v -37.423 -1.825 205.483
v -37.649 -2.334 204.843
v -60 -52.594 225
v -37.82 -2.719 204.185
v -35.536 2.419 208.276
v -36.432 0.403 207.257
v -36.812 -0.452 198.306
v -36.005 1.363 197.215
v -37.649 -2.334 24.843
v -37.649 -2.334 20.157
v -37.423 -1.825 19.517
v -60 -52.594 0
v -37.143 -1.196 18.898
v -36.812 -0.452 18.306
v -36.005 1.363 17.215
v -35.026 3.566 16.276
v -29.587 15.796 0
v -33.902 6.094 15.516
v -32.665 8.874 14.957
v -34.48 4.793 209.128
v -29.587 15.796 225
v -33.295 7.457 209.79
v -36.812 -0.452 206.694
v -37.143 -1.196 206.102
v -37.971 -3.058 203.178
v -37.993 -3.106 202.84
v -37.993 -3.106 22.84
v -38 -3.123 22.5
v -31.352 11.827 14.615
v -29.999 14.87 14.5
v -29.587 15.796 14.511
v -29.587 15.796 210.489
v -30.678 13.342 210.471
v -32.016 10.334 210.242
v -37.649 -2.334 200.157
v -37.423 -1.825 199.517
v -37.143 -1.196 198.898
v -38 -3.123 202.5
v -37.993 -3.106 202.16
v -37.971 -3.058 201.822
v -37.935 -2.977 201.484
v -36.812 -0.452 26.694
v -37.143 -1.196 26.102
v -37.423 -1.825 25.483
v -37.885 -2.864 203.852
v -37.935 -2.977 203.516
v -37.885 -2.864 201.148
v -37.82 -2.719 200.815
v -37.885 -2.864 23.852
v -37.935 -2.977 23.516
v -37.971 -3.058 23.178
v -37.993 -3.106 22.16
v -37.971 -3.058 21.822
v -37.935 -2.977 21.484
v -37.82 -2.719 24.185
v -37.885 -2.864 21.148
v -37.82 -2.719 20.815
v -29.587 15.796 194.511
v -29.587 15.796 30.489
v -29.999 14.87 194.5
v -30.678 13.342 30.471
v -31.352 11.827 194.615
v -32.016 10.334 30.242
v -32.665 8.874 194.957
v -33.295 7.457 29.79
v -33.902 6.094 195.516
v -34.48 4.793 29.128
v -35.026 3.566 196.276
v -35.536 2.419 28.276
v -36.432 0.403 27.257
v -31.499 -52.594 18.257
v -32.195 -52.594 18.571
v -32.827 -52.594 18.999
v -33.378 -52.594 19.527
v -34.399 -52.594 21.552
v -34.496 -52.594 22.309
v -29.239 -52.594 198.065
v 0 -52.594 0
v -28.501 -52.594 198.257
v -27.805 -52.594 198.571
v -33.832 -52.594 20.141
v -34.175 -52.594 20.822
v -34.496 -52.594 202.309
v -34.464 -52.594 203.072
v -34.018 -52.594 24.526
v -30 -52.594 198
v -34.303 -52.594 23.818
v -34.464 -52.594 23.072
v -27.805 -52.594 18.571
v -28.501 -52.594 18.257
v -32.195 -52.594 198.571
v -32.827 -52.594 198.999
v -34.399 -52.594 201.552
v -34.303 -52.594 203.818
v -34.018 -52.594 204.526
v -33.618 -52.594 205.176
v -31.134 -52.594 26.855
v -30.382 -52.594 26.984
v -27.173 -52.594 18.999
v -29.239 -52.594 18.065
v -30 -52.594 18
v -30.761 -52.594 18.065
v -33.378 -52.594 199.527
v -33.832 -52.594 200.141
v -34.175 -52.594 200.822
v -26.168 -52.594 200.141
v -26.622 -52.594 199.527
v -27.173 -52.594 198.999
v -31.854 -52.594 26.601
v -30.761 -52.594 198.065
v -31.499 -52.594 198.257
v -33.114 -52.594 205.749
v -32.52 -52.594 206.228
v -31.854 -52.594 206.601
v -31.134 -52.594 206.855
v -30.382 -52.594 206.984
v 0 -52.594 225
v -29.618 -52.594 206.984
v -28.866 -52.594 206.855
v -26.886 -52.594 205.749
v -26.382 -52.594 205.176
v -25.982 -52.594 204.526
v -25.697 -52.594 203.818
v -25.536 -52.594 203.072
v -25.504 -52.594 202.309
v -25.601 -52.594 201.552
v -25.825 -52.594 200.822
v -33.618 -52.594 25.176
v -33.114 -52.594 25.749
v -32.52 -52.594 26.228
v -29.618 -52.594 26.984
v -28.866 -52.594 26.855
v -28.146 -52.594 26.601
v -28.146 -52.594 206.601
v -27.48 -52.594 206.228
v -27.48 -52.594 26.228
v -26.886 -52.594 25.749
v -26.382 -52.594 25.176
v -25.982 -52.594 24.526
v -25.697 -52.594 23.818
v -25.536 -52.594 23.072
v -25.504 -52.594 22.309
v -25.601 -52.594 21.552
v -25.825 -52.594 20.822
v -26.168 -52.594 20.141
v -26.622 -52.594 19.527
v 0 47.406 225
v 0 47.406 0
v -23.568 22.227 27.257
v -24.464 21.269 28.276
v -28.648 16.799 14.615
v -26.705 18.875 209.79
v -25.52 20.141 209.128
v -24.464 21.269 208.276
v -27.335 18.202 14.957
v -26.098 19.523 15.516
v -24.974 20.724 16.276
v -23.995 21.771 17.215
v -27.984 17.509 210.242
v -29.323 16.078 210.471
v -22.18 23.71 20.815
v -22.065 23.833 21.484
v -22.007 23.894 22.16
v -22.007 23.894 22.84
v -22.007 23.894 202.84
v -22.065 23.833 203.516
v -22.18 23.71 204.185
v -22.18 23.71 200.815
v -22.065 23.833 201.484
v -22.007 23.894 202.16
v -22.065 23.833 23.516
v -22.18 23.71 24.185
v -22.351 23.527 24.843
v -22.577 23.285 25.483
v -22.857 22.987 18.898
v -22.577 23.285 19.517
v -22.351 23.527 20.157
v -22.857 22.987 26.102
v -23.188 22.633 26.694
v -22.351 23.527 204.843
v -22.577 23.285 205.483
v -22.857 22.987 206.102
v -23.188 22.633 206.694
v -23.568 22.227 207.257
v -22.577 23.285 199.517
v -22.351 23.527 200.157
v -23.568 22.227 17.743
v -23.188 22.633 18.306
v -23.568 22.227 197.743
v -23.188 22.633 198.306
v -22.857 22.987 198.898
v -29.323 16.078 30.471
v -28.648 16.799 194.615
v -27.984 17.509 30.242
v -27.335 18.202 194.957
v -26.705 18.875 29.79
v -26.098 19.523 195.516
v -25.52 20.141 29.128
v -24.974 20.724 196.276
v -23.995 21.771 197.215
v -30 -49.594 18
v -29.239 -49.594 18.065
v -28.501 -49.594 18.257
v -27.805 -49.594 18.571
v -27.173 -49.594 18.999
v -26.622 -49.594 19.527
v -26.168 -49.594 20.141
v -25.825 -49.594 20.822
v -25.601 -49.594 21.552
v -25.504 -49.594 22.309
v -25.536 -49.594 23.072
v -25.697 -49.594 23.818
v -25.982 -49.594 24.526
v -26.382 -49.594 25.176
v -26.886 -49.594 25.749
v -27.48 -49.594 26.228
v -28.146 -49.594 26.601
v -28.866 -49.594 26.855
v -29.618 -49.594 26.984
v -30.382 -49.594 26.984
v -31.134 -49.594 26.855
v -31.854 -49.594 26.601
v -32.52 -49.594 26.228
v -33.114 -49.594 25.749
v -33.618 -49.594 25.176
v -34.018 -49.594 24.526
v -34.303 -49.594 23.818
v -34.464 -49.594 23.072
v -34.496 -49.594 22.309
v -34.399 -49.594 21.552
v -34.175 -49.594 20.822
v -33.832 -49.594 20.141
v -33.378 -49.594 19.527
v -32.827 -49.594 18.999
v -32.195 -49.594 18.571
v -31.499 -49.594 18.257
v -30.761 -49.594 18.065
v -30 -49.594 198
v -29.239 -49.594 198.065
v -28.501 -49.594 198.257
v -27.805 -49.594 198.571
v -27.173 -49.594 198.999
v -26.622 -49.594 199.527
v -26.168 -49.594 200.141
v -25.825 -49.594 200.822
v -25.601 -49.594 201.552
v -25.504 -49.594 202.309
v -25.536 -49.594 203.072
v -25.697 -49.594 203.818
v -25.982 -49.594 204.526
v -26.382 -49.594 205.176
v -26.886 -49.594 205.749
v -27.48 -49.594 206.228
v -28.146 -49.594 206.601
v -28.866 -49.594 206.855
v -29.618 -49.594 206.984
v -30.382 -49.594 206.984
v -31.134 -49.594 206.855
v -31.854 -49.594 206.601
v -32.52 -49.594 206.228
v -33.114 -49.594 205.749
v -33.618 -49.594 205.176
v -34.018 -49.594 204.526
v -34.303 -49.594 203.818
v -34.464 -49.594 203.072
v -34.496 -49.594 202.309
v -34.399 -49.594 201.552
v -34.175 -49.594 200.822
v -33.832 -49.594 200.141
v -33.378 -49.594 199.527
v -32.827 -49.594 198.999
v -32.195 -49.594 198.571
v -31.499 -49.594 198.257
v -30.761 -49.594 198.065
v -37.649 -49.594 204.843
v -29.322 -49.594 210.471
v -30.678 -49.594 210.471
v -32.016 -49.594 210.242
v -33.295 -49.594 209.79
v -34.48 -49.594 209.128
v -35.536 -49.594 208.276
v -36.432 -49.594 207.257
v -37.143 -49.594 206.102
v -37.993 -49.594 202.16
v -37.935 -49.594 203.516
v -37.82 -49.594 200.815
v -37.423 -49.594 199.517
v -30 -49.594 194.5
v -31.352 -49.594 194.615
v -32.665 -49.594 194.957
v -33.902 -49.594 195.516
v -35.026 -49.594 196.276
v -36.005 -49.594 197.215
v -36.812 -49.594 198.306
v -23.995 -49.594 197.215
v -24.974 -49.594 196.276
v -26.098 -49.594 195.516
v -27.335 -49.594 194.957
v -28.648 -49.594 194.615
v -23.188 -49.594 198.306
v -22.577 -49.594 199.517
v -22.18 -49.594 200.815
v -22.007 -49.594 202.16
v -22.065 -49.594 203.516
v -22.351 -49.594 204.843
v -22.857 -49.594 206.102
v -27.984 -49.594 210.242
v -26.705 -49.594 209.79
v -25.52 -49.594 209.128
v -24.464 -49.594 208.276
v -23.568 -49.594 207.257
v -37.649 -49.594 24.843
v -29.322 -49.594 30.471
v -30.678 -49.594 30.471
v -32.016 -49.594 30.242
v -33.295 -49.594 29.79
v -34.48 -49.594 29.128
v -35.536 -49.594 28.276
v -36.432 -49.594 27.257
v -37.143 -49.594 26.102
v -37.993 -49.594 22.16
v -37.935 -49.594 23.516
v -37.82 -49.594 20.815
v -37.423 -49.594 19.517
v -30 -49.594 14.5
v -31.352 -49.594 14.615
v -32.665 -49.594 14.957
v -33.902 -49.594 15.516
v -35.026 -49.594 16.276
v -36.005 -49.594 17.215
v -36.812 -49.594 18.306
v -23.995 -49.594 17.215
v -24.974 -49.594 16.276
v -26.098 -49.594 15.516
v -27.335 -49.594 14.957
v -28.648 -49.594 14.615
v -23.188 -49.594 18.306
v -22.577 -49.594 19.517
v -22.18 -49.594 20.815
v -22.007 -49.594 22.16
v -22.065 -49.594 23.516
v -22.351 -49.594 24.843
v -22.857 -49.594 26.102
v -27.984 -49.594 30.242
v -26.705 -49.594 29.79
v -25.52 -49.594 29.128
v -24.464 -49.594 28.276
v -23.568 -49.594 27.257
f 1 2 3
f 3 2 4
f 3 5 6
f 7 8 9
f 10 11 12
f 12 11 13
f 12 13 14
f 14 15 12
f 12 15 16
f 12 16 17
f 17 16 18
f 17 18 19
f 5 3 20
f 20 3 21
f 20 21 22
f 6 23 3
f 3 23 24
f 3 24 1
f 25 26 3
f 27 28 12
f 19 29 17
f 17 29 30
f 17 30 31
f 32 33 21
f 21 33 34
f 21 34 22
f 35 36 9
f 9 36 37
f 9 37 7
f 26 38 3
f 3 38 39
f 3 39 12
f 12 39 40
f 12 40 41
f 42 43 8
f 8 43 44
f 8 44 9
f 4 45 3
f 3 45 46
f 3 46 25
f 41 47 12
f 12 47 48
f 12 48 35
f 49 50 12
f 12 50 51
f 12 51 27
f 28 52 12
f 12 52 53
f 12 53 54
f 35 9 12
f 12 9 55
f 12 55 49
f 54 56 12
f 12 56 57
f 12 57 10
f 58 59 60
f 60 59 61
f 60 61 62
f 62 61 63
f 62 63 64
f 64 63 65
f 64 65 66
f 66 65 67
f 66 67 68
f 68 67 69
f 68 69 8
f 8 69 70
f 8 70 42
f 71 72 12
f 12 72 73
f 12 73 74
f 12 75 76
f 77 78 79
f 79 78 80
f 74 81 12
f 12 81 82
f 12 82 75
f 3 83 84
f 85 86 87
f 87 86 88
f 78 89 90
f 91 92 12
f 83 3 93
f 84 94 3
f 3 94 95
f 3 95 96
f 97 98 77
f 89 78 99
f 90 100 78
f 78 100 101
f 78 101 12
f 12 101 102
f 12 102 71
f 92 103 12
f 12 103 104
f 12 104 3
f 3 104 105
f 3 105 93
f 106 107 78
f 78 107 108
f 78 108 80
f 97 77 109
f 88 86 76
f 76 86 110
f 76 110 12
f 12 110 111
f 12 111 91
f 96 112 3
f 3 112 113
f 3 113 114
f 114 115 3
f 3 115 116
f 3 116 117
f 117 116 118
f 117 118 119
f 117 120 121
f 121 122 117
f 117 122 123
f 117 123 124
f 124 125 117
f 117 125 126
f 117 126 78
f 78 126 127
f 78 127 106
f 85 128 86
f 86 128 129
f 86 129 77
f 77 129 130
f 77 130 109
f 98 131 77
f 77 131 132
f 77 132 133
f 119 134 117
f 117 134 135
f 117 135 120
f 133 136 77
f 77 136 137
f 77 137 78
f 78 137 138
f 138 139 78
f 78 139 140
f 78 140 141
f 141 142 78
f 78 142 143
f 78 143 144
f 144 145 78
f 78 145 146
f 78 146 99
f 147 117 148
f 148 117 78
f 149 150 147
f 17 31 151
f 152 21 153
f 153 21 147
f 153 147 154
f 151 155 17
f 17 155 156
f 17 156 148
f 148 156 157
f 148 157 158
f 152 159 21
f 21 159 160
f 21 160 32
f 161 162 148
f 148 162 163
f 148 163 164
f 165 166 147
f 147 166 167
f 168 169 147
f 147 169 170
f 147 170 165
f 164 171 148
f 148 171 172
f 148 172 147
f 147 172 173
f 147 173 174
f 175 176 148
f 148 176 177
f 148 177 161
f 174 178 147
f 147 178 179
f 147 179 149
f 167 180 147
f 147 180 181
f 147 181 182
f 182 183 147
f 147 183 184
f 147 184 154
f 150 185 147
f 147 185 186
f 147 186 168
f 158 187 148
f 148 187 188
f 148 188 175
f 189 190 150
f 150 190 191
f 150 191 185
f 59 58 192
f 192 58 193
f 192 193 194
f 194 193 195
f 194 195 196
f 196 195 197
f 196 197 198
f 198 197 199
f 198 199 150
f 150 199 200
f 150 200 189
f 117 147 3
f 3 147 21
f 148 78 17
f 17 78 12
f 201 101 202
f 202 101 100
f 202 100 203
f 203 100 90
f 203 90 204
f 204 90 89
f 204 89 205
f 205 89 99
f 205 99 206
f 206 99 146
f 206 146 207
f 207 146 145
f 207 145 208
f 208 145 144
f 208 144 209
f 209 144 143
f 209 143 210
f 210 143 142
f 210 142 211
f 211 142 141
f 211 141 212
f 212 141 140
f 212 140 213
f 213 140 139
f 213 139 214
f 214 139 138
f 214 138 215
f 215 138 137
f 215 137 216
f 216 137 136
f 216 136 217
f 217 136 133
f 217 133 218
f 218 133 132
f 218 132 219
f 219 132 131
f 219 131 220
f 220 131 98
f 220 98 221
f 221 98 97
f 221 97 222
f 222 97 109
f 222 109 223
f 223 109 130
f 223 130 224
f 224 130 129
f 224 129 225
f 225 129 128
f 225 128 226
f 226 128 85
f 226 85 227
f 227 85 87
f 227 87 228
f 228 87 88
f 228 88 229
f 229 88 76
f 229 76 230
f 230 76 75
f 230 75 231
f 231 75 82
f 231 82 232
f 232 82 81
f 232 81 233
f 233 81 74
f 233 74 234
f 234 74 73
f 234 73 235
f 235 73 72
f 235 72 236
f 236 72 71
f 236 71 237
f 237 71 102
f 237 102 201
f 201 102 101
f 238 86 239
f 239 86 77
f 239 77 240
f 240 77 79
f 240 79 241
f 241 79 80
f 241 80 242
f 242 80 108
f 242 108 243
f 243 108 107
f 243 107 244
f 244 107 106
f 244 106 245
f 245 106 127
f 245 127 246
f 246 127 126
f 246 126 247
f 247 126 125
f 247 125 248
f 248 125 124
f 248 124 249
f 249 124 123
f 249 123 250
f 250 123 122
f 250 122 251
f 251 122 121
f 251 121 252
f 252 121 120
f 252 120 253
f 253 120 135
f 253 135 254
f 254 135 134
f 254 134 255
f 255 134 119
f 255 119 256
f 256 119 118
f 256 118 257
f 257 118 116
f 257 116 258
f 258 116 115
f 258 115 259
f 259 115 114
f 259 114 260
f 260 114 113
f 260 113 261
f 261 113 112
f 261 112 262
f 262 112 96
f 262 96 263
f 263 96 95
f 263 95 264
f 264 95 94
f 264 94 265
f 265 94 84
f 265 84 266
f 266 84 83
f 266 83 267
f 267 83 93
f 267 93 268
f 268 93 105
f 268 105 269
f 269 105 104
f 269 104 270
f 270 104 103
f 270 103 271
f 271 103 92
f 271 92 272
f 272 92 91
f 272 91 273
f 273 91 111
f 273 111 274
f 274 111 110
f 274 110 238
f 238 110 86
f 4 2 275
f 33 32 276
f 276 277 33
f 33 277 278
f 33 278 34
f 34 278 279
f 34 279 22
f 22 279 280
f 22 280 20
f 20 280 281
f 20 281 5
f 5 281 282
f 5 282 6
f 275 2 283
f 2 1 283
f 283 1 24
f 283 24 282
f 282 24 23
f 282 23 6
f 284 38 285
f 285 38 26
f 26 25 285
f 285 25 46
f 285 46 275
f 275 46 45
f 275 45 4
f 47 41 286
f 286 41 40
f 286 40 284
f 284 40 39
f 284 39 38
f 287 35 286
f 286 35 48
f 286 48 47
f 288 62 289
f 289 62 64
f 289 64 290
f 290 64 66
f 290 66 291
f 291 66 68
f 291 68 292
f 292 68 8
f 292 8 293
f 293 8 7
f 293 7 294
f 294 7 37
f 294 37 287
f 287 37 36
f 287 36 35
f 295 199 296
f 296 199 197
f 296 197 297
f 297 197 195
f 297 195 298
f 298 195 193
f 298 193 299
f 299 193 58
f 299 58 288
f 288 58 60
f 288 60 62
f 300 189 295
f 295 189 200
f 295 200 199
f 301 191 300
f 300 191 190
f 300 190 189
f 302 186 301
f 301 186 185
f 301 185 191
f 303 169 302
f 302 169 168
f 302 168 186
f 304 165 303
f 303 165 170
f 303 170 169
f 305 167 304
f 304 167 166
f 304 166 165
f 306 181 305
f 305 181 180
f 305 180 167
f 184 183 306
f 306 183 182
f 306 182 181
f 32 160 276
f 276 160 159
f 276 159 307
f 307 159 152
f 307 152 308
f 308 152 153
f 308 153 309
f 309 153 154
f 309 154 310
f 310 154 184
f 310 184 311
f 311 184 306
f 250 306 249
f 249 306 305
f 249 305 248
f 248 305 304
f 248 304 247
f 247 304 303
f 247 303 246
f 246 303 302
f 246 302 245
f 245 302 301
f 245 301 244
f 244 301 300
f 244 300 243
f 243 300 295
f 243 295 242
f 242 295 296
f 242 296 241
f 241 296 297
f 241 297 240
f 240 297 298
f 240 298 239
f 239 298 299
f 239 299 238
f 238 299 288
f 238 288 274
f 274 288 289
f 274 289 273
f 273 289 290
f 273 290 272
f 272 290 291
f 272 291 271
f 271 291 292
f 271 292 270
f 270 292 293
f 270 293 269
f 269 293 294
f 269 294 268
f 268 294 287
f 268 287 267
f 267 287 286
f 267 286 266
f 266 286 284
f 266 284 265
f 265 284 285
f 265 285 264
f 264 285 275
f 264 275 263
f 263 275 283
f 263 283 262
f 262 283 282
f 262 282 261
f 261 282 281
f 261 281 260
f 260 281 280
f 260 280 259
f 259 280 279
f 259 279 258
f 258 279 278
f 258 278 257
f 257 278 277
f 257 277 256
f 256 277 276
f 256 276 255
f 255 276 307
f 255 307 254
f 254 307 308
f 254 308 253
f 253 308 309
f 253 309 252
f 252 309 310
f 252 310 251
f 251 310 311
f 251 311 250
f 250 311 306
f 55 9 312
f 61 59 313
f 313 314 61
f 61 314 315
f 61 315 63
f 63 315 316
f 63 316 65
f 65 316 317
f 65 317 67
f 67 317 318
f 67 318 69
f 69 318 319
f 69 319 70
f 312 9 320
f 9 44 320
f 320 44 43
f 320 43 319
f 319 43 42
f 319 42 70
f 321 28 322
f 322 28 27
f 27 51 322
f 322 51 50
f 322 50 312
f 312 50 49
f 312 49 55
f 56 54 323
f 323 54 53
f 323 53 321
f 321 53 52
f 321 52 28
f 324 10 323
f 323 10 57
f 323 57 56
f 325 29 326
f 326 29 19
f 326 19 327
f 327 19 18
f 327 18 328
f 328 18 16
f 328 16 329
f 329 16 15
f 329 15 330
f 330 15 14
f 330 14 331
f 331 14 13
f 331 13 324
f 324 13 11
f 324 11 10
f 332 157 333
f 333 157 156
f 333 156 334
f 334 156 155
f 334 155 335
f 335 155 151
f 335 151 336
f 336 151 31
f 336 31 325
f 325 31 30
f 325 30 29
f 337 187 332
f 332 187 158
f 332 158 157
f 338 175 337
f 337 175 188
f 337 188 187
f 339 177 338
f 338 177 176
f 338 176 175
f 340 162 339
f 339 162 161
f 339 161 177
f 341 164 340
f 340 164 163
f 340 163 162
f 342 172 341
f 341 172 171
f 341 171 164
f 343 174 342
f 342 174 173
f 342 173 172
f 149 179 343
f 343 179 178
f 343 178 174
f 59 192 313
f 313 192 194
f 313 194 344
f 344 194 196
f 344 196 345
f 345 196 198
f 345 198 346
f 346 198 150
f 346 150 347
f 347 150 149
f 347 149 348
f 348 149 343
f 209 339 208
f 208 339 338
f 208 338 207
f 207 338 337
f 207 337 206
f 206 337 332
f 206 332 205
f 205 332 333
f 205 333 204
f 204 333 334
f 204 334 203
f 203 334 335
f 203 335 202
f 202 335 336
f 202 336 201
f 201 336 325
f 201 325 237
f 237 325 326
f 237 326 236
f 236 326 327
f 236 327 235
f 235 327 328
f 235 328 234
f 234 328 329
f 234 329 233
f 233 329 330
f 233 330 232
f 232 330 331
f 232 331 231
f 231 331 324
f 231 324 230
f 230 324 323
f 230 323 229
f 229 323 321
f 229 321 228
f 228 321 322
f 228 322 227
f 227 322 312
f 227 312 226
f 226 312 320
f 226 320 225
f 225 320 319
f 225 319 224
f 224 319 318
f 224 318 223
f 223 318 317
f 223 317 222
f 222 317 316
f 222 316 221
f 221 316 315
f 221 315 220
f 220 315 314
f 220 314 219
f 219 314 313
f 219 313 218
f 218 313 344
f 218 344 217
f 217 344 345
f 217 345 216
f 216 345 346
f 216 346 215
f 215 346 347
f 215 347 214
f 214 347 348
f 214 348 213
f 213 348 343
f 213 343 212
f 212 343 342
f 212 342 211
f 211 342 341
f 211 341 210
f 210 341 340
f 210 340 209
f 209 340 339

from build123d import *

# Parameters (mm, degrees)
BOSS_EXTRUDE1_DEPTH = 225
SKETCH2_R           = 4.5
CUT_EXTRUDE5_DEPTH  = 101
SKETCH6_R           = 8
CUT_EXTRUDE6_DEPTH  = 98


with BuildPart() as part:
    # Sketch1 → Boss-Extrude1 (new body)
    with BuildSketch(Plane.XY):
        Polygon((-60, -52.594339623), (0, -52.594339623), (0, 47.405660377), (-29.586723225, 15.796476851), align=None)
    extrude(amount=BOSS_EXTRUDE1_DEPTH)

    # Sketch2 → Cut-Extrude5 (cut, through all)
    with BuildSketch(Plane.XZ.offset(52.594339623)):
        with Locations((-30, 202.5)):
            Circle(SKETCH2_R)
        with Locations((-30, 22.5)):
            Circle(SKETCH2_R)
    extrude(amount=-CUT_EXTRUDE5_DEPTH, mode=Mode.SUBTRACT)

    # Sketch6 → Cut-Extrude6 (cut, through all)
    with BuildSketch(Plane(origin=(0, -49.594339623, 0), x_dir=(-1, 0, 0), z_dir=(0, -1, 0))):
        with Locations((30, -22.5)):
            Circle(SKETCH6_R)
        with Locations((30, -202.5)):
            Circle(SKETCH6_R)
    extrude(amount=-CUT_EXTRUDE6_DEPTH, mode=Mode.SUBTRACT)


solid = part.part
